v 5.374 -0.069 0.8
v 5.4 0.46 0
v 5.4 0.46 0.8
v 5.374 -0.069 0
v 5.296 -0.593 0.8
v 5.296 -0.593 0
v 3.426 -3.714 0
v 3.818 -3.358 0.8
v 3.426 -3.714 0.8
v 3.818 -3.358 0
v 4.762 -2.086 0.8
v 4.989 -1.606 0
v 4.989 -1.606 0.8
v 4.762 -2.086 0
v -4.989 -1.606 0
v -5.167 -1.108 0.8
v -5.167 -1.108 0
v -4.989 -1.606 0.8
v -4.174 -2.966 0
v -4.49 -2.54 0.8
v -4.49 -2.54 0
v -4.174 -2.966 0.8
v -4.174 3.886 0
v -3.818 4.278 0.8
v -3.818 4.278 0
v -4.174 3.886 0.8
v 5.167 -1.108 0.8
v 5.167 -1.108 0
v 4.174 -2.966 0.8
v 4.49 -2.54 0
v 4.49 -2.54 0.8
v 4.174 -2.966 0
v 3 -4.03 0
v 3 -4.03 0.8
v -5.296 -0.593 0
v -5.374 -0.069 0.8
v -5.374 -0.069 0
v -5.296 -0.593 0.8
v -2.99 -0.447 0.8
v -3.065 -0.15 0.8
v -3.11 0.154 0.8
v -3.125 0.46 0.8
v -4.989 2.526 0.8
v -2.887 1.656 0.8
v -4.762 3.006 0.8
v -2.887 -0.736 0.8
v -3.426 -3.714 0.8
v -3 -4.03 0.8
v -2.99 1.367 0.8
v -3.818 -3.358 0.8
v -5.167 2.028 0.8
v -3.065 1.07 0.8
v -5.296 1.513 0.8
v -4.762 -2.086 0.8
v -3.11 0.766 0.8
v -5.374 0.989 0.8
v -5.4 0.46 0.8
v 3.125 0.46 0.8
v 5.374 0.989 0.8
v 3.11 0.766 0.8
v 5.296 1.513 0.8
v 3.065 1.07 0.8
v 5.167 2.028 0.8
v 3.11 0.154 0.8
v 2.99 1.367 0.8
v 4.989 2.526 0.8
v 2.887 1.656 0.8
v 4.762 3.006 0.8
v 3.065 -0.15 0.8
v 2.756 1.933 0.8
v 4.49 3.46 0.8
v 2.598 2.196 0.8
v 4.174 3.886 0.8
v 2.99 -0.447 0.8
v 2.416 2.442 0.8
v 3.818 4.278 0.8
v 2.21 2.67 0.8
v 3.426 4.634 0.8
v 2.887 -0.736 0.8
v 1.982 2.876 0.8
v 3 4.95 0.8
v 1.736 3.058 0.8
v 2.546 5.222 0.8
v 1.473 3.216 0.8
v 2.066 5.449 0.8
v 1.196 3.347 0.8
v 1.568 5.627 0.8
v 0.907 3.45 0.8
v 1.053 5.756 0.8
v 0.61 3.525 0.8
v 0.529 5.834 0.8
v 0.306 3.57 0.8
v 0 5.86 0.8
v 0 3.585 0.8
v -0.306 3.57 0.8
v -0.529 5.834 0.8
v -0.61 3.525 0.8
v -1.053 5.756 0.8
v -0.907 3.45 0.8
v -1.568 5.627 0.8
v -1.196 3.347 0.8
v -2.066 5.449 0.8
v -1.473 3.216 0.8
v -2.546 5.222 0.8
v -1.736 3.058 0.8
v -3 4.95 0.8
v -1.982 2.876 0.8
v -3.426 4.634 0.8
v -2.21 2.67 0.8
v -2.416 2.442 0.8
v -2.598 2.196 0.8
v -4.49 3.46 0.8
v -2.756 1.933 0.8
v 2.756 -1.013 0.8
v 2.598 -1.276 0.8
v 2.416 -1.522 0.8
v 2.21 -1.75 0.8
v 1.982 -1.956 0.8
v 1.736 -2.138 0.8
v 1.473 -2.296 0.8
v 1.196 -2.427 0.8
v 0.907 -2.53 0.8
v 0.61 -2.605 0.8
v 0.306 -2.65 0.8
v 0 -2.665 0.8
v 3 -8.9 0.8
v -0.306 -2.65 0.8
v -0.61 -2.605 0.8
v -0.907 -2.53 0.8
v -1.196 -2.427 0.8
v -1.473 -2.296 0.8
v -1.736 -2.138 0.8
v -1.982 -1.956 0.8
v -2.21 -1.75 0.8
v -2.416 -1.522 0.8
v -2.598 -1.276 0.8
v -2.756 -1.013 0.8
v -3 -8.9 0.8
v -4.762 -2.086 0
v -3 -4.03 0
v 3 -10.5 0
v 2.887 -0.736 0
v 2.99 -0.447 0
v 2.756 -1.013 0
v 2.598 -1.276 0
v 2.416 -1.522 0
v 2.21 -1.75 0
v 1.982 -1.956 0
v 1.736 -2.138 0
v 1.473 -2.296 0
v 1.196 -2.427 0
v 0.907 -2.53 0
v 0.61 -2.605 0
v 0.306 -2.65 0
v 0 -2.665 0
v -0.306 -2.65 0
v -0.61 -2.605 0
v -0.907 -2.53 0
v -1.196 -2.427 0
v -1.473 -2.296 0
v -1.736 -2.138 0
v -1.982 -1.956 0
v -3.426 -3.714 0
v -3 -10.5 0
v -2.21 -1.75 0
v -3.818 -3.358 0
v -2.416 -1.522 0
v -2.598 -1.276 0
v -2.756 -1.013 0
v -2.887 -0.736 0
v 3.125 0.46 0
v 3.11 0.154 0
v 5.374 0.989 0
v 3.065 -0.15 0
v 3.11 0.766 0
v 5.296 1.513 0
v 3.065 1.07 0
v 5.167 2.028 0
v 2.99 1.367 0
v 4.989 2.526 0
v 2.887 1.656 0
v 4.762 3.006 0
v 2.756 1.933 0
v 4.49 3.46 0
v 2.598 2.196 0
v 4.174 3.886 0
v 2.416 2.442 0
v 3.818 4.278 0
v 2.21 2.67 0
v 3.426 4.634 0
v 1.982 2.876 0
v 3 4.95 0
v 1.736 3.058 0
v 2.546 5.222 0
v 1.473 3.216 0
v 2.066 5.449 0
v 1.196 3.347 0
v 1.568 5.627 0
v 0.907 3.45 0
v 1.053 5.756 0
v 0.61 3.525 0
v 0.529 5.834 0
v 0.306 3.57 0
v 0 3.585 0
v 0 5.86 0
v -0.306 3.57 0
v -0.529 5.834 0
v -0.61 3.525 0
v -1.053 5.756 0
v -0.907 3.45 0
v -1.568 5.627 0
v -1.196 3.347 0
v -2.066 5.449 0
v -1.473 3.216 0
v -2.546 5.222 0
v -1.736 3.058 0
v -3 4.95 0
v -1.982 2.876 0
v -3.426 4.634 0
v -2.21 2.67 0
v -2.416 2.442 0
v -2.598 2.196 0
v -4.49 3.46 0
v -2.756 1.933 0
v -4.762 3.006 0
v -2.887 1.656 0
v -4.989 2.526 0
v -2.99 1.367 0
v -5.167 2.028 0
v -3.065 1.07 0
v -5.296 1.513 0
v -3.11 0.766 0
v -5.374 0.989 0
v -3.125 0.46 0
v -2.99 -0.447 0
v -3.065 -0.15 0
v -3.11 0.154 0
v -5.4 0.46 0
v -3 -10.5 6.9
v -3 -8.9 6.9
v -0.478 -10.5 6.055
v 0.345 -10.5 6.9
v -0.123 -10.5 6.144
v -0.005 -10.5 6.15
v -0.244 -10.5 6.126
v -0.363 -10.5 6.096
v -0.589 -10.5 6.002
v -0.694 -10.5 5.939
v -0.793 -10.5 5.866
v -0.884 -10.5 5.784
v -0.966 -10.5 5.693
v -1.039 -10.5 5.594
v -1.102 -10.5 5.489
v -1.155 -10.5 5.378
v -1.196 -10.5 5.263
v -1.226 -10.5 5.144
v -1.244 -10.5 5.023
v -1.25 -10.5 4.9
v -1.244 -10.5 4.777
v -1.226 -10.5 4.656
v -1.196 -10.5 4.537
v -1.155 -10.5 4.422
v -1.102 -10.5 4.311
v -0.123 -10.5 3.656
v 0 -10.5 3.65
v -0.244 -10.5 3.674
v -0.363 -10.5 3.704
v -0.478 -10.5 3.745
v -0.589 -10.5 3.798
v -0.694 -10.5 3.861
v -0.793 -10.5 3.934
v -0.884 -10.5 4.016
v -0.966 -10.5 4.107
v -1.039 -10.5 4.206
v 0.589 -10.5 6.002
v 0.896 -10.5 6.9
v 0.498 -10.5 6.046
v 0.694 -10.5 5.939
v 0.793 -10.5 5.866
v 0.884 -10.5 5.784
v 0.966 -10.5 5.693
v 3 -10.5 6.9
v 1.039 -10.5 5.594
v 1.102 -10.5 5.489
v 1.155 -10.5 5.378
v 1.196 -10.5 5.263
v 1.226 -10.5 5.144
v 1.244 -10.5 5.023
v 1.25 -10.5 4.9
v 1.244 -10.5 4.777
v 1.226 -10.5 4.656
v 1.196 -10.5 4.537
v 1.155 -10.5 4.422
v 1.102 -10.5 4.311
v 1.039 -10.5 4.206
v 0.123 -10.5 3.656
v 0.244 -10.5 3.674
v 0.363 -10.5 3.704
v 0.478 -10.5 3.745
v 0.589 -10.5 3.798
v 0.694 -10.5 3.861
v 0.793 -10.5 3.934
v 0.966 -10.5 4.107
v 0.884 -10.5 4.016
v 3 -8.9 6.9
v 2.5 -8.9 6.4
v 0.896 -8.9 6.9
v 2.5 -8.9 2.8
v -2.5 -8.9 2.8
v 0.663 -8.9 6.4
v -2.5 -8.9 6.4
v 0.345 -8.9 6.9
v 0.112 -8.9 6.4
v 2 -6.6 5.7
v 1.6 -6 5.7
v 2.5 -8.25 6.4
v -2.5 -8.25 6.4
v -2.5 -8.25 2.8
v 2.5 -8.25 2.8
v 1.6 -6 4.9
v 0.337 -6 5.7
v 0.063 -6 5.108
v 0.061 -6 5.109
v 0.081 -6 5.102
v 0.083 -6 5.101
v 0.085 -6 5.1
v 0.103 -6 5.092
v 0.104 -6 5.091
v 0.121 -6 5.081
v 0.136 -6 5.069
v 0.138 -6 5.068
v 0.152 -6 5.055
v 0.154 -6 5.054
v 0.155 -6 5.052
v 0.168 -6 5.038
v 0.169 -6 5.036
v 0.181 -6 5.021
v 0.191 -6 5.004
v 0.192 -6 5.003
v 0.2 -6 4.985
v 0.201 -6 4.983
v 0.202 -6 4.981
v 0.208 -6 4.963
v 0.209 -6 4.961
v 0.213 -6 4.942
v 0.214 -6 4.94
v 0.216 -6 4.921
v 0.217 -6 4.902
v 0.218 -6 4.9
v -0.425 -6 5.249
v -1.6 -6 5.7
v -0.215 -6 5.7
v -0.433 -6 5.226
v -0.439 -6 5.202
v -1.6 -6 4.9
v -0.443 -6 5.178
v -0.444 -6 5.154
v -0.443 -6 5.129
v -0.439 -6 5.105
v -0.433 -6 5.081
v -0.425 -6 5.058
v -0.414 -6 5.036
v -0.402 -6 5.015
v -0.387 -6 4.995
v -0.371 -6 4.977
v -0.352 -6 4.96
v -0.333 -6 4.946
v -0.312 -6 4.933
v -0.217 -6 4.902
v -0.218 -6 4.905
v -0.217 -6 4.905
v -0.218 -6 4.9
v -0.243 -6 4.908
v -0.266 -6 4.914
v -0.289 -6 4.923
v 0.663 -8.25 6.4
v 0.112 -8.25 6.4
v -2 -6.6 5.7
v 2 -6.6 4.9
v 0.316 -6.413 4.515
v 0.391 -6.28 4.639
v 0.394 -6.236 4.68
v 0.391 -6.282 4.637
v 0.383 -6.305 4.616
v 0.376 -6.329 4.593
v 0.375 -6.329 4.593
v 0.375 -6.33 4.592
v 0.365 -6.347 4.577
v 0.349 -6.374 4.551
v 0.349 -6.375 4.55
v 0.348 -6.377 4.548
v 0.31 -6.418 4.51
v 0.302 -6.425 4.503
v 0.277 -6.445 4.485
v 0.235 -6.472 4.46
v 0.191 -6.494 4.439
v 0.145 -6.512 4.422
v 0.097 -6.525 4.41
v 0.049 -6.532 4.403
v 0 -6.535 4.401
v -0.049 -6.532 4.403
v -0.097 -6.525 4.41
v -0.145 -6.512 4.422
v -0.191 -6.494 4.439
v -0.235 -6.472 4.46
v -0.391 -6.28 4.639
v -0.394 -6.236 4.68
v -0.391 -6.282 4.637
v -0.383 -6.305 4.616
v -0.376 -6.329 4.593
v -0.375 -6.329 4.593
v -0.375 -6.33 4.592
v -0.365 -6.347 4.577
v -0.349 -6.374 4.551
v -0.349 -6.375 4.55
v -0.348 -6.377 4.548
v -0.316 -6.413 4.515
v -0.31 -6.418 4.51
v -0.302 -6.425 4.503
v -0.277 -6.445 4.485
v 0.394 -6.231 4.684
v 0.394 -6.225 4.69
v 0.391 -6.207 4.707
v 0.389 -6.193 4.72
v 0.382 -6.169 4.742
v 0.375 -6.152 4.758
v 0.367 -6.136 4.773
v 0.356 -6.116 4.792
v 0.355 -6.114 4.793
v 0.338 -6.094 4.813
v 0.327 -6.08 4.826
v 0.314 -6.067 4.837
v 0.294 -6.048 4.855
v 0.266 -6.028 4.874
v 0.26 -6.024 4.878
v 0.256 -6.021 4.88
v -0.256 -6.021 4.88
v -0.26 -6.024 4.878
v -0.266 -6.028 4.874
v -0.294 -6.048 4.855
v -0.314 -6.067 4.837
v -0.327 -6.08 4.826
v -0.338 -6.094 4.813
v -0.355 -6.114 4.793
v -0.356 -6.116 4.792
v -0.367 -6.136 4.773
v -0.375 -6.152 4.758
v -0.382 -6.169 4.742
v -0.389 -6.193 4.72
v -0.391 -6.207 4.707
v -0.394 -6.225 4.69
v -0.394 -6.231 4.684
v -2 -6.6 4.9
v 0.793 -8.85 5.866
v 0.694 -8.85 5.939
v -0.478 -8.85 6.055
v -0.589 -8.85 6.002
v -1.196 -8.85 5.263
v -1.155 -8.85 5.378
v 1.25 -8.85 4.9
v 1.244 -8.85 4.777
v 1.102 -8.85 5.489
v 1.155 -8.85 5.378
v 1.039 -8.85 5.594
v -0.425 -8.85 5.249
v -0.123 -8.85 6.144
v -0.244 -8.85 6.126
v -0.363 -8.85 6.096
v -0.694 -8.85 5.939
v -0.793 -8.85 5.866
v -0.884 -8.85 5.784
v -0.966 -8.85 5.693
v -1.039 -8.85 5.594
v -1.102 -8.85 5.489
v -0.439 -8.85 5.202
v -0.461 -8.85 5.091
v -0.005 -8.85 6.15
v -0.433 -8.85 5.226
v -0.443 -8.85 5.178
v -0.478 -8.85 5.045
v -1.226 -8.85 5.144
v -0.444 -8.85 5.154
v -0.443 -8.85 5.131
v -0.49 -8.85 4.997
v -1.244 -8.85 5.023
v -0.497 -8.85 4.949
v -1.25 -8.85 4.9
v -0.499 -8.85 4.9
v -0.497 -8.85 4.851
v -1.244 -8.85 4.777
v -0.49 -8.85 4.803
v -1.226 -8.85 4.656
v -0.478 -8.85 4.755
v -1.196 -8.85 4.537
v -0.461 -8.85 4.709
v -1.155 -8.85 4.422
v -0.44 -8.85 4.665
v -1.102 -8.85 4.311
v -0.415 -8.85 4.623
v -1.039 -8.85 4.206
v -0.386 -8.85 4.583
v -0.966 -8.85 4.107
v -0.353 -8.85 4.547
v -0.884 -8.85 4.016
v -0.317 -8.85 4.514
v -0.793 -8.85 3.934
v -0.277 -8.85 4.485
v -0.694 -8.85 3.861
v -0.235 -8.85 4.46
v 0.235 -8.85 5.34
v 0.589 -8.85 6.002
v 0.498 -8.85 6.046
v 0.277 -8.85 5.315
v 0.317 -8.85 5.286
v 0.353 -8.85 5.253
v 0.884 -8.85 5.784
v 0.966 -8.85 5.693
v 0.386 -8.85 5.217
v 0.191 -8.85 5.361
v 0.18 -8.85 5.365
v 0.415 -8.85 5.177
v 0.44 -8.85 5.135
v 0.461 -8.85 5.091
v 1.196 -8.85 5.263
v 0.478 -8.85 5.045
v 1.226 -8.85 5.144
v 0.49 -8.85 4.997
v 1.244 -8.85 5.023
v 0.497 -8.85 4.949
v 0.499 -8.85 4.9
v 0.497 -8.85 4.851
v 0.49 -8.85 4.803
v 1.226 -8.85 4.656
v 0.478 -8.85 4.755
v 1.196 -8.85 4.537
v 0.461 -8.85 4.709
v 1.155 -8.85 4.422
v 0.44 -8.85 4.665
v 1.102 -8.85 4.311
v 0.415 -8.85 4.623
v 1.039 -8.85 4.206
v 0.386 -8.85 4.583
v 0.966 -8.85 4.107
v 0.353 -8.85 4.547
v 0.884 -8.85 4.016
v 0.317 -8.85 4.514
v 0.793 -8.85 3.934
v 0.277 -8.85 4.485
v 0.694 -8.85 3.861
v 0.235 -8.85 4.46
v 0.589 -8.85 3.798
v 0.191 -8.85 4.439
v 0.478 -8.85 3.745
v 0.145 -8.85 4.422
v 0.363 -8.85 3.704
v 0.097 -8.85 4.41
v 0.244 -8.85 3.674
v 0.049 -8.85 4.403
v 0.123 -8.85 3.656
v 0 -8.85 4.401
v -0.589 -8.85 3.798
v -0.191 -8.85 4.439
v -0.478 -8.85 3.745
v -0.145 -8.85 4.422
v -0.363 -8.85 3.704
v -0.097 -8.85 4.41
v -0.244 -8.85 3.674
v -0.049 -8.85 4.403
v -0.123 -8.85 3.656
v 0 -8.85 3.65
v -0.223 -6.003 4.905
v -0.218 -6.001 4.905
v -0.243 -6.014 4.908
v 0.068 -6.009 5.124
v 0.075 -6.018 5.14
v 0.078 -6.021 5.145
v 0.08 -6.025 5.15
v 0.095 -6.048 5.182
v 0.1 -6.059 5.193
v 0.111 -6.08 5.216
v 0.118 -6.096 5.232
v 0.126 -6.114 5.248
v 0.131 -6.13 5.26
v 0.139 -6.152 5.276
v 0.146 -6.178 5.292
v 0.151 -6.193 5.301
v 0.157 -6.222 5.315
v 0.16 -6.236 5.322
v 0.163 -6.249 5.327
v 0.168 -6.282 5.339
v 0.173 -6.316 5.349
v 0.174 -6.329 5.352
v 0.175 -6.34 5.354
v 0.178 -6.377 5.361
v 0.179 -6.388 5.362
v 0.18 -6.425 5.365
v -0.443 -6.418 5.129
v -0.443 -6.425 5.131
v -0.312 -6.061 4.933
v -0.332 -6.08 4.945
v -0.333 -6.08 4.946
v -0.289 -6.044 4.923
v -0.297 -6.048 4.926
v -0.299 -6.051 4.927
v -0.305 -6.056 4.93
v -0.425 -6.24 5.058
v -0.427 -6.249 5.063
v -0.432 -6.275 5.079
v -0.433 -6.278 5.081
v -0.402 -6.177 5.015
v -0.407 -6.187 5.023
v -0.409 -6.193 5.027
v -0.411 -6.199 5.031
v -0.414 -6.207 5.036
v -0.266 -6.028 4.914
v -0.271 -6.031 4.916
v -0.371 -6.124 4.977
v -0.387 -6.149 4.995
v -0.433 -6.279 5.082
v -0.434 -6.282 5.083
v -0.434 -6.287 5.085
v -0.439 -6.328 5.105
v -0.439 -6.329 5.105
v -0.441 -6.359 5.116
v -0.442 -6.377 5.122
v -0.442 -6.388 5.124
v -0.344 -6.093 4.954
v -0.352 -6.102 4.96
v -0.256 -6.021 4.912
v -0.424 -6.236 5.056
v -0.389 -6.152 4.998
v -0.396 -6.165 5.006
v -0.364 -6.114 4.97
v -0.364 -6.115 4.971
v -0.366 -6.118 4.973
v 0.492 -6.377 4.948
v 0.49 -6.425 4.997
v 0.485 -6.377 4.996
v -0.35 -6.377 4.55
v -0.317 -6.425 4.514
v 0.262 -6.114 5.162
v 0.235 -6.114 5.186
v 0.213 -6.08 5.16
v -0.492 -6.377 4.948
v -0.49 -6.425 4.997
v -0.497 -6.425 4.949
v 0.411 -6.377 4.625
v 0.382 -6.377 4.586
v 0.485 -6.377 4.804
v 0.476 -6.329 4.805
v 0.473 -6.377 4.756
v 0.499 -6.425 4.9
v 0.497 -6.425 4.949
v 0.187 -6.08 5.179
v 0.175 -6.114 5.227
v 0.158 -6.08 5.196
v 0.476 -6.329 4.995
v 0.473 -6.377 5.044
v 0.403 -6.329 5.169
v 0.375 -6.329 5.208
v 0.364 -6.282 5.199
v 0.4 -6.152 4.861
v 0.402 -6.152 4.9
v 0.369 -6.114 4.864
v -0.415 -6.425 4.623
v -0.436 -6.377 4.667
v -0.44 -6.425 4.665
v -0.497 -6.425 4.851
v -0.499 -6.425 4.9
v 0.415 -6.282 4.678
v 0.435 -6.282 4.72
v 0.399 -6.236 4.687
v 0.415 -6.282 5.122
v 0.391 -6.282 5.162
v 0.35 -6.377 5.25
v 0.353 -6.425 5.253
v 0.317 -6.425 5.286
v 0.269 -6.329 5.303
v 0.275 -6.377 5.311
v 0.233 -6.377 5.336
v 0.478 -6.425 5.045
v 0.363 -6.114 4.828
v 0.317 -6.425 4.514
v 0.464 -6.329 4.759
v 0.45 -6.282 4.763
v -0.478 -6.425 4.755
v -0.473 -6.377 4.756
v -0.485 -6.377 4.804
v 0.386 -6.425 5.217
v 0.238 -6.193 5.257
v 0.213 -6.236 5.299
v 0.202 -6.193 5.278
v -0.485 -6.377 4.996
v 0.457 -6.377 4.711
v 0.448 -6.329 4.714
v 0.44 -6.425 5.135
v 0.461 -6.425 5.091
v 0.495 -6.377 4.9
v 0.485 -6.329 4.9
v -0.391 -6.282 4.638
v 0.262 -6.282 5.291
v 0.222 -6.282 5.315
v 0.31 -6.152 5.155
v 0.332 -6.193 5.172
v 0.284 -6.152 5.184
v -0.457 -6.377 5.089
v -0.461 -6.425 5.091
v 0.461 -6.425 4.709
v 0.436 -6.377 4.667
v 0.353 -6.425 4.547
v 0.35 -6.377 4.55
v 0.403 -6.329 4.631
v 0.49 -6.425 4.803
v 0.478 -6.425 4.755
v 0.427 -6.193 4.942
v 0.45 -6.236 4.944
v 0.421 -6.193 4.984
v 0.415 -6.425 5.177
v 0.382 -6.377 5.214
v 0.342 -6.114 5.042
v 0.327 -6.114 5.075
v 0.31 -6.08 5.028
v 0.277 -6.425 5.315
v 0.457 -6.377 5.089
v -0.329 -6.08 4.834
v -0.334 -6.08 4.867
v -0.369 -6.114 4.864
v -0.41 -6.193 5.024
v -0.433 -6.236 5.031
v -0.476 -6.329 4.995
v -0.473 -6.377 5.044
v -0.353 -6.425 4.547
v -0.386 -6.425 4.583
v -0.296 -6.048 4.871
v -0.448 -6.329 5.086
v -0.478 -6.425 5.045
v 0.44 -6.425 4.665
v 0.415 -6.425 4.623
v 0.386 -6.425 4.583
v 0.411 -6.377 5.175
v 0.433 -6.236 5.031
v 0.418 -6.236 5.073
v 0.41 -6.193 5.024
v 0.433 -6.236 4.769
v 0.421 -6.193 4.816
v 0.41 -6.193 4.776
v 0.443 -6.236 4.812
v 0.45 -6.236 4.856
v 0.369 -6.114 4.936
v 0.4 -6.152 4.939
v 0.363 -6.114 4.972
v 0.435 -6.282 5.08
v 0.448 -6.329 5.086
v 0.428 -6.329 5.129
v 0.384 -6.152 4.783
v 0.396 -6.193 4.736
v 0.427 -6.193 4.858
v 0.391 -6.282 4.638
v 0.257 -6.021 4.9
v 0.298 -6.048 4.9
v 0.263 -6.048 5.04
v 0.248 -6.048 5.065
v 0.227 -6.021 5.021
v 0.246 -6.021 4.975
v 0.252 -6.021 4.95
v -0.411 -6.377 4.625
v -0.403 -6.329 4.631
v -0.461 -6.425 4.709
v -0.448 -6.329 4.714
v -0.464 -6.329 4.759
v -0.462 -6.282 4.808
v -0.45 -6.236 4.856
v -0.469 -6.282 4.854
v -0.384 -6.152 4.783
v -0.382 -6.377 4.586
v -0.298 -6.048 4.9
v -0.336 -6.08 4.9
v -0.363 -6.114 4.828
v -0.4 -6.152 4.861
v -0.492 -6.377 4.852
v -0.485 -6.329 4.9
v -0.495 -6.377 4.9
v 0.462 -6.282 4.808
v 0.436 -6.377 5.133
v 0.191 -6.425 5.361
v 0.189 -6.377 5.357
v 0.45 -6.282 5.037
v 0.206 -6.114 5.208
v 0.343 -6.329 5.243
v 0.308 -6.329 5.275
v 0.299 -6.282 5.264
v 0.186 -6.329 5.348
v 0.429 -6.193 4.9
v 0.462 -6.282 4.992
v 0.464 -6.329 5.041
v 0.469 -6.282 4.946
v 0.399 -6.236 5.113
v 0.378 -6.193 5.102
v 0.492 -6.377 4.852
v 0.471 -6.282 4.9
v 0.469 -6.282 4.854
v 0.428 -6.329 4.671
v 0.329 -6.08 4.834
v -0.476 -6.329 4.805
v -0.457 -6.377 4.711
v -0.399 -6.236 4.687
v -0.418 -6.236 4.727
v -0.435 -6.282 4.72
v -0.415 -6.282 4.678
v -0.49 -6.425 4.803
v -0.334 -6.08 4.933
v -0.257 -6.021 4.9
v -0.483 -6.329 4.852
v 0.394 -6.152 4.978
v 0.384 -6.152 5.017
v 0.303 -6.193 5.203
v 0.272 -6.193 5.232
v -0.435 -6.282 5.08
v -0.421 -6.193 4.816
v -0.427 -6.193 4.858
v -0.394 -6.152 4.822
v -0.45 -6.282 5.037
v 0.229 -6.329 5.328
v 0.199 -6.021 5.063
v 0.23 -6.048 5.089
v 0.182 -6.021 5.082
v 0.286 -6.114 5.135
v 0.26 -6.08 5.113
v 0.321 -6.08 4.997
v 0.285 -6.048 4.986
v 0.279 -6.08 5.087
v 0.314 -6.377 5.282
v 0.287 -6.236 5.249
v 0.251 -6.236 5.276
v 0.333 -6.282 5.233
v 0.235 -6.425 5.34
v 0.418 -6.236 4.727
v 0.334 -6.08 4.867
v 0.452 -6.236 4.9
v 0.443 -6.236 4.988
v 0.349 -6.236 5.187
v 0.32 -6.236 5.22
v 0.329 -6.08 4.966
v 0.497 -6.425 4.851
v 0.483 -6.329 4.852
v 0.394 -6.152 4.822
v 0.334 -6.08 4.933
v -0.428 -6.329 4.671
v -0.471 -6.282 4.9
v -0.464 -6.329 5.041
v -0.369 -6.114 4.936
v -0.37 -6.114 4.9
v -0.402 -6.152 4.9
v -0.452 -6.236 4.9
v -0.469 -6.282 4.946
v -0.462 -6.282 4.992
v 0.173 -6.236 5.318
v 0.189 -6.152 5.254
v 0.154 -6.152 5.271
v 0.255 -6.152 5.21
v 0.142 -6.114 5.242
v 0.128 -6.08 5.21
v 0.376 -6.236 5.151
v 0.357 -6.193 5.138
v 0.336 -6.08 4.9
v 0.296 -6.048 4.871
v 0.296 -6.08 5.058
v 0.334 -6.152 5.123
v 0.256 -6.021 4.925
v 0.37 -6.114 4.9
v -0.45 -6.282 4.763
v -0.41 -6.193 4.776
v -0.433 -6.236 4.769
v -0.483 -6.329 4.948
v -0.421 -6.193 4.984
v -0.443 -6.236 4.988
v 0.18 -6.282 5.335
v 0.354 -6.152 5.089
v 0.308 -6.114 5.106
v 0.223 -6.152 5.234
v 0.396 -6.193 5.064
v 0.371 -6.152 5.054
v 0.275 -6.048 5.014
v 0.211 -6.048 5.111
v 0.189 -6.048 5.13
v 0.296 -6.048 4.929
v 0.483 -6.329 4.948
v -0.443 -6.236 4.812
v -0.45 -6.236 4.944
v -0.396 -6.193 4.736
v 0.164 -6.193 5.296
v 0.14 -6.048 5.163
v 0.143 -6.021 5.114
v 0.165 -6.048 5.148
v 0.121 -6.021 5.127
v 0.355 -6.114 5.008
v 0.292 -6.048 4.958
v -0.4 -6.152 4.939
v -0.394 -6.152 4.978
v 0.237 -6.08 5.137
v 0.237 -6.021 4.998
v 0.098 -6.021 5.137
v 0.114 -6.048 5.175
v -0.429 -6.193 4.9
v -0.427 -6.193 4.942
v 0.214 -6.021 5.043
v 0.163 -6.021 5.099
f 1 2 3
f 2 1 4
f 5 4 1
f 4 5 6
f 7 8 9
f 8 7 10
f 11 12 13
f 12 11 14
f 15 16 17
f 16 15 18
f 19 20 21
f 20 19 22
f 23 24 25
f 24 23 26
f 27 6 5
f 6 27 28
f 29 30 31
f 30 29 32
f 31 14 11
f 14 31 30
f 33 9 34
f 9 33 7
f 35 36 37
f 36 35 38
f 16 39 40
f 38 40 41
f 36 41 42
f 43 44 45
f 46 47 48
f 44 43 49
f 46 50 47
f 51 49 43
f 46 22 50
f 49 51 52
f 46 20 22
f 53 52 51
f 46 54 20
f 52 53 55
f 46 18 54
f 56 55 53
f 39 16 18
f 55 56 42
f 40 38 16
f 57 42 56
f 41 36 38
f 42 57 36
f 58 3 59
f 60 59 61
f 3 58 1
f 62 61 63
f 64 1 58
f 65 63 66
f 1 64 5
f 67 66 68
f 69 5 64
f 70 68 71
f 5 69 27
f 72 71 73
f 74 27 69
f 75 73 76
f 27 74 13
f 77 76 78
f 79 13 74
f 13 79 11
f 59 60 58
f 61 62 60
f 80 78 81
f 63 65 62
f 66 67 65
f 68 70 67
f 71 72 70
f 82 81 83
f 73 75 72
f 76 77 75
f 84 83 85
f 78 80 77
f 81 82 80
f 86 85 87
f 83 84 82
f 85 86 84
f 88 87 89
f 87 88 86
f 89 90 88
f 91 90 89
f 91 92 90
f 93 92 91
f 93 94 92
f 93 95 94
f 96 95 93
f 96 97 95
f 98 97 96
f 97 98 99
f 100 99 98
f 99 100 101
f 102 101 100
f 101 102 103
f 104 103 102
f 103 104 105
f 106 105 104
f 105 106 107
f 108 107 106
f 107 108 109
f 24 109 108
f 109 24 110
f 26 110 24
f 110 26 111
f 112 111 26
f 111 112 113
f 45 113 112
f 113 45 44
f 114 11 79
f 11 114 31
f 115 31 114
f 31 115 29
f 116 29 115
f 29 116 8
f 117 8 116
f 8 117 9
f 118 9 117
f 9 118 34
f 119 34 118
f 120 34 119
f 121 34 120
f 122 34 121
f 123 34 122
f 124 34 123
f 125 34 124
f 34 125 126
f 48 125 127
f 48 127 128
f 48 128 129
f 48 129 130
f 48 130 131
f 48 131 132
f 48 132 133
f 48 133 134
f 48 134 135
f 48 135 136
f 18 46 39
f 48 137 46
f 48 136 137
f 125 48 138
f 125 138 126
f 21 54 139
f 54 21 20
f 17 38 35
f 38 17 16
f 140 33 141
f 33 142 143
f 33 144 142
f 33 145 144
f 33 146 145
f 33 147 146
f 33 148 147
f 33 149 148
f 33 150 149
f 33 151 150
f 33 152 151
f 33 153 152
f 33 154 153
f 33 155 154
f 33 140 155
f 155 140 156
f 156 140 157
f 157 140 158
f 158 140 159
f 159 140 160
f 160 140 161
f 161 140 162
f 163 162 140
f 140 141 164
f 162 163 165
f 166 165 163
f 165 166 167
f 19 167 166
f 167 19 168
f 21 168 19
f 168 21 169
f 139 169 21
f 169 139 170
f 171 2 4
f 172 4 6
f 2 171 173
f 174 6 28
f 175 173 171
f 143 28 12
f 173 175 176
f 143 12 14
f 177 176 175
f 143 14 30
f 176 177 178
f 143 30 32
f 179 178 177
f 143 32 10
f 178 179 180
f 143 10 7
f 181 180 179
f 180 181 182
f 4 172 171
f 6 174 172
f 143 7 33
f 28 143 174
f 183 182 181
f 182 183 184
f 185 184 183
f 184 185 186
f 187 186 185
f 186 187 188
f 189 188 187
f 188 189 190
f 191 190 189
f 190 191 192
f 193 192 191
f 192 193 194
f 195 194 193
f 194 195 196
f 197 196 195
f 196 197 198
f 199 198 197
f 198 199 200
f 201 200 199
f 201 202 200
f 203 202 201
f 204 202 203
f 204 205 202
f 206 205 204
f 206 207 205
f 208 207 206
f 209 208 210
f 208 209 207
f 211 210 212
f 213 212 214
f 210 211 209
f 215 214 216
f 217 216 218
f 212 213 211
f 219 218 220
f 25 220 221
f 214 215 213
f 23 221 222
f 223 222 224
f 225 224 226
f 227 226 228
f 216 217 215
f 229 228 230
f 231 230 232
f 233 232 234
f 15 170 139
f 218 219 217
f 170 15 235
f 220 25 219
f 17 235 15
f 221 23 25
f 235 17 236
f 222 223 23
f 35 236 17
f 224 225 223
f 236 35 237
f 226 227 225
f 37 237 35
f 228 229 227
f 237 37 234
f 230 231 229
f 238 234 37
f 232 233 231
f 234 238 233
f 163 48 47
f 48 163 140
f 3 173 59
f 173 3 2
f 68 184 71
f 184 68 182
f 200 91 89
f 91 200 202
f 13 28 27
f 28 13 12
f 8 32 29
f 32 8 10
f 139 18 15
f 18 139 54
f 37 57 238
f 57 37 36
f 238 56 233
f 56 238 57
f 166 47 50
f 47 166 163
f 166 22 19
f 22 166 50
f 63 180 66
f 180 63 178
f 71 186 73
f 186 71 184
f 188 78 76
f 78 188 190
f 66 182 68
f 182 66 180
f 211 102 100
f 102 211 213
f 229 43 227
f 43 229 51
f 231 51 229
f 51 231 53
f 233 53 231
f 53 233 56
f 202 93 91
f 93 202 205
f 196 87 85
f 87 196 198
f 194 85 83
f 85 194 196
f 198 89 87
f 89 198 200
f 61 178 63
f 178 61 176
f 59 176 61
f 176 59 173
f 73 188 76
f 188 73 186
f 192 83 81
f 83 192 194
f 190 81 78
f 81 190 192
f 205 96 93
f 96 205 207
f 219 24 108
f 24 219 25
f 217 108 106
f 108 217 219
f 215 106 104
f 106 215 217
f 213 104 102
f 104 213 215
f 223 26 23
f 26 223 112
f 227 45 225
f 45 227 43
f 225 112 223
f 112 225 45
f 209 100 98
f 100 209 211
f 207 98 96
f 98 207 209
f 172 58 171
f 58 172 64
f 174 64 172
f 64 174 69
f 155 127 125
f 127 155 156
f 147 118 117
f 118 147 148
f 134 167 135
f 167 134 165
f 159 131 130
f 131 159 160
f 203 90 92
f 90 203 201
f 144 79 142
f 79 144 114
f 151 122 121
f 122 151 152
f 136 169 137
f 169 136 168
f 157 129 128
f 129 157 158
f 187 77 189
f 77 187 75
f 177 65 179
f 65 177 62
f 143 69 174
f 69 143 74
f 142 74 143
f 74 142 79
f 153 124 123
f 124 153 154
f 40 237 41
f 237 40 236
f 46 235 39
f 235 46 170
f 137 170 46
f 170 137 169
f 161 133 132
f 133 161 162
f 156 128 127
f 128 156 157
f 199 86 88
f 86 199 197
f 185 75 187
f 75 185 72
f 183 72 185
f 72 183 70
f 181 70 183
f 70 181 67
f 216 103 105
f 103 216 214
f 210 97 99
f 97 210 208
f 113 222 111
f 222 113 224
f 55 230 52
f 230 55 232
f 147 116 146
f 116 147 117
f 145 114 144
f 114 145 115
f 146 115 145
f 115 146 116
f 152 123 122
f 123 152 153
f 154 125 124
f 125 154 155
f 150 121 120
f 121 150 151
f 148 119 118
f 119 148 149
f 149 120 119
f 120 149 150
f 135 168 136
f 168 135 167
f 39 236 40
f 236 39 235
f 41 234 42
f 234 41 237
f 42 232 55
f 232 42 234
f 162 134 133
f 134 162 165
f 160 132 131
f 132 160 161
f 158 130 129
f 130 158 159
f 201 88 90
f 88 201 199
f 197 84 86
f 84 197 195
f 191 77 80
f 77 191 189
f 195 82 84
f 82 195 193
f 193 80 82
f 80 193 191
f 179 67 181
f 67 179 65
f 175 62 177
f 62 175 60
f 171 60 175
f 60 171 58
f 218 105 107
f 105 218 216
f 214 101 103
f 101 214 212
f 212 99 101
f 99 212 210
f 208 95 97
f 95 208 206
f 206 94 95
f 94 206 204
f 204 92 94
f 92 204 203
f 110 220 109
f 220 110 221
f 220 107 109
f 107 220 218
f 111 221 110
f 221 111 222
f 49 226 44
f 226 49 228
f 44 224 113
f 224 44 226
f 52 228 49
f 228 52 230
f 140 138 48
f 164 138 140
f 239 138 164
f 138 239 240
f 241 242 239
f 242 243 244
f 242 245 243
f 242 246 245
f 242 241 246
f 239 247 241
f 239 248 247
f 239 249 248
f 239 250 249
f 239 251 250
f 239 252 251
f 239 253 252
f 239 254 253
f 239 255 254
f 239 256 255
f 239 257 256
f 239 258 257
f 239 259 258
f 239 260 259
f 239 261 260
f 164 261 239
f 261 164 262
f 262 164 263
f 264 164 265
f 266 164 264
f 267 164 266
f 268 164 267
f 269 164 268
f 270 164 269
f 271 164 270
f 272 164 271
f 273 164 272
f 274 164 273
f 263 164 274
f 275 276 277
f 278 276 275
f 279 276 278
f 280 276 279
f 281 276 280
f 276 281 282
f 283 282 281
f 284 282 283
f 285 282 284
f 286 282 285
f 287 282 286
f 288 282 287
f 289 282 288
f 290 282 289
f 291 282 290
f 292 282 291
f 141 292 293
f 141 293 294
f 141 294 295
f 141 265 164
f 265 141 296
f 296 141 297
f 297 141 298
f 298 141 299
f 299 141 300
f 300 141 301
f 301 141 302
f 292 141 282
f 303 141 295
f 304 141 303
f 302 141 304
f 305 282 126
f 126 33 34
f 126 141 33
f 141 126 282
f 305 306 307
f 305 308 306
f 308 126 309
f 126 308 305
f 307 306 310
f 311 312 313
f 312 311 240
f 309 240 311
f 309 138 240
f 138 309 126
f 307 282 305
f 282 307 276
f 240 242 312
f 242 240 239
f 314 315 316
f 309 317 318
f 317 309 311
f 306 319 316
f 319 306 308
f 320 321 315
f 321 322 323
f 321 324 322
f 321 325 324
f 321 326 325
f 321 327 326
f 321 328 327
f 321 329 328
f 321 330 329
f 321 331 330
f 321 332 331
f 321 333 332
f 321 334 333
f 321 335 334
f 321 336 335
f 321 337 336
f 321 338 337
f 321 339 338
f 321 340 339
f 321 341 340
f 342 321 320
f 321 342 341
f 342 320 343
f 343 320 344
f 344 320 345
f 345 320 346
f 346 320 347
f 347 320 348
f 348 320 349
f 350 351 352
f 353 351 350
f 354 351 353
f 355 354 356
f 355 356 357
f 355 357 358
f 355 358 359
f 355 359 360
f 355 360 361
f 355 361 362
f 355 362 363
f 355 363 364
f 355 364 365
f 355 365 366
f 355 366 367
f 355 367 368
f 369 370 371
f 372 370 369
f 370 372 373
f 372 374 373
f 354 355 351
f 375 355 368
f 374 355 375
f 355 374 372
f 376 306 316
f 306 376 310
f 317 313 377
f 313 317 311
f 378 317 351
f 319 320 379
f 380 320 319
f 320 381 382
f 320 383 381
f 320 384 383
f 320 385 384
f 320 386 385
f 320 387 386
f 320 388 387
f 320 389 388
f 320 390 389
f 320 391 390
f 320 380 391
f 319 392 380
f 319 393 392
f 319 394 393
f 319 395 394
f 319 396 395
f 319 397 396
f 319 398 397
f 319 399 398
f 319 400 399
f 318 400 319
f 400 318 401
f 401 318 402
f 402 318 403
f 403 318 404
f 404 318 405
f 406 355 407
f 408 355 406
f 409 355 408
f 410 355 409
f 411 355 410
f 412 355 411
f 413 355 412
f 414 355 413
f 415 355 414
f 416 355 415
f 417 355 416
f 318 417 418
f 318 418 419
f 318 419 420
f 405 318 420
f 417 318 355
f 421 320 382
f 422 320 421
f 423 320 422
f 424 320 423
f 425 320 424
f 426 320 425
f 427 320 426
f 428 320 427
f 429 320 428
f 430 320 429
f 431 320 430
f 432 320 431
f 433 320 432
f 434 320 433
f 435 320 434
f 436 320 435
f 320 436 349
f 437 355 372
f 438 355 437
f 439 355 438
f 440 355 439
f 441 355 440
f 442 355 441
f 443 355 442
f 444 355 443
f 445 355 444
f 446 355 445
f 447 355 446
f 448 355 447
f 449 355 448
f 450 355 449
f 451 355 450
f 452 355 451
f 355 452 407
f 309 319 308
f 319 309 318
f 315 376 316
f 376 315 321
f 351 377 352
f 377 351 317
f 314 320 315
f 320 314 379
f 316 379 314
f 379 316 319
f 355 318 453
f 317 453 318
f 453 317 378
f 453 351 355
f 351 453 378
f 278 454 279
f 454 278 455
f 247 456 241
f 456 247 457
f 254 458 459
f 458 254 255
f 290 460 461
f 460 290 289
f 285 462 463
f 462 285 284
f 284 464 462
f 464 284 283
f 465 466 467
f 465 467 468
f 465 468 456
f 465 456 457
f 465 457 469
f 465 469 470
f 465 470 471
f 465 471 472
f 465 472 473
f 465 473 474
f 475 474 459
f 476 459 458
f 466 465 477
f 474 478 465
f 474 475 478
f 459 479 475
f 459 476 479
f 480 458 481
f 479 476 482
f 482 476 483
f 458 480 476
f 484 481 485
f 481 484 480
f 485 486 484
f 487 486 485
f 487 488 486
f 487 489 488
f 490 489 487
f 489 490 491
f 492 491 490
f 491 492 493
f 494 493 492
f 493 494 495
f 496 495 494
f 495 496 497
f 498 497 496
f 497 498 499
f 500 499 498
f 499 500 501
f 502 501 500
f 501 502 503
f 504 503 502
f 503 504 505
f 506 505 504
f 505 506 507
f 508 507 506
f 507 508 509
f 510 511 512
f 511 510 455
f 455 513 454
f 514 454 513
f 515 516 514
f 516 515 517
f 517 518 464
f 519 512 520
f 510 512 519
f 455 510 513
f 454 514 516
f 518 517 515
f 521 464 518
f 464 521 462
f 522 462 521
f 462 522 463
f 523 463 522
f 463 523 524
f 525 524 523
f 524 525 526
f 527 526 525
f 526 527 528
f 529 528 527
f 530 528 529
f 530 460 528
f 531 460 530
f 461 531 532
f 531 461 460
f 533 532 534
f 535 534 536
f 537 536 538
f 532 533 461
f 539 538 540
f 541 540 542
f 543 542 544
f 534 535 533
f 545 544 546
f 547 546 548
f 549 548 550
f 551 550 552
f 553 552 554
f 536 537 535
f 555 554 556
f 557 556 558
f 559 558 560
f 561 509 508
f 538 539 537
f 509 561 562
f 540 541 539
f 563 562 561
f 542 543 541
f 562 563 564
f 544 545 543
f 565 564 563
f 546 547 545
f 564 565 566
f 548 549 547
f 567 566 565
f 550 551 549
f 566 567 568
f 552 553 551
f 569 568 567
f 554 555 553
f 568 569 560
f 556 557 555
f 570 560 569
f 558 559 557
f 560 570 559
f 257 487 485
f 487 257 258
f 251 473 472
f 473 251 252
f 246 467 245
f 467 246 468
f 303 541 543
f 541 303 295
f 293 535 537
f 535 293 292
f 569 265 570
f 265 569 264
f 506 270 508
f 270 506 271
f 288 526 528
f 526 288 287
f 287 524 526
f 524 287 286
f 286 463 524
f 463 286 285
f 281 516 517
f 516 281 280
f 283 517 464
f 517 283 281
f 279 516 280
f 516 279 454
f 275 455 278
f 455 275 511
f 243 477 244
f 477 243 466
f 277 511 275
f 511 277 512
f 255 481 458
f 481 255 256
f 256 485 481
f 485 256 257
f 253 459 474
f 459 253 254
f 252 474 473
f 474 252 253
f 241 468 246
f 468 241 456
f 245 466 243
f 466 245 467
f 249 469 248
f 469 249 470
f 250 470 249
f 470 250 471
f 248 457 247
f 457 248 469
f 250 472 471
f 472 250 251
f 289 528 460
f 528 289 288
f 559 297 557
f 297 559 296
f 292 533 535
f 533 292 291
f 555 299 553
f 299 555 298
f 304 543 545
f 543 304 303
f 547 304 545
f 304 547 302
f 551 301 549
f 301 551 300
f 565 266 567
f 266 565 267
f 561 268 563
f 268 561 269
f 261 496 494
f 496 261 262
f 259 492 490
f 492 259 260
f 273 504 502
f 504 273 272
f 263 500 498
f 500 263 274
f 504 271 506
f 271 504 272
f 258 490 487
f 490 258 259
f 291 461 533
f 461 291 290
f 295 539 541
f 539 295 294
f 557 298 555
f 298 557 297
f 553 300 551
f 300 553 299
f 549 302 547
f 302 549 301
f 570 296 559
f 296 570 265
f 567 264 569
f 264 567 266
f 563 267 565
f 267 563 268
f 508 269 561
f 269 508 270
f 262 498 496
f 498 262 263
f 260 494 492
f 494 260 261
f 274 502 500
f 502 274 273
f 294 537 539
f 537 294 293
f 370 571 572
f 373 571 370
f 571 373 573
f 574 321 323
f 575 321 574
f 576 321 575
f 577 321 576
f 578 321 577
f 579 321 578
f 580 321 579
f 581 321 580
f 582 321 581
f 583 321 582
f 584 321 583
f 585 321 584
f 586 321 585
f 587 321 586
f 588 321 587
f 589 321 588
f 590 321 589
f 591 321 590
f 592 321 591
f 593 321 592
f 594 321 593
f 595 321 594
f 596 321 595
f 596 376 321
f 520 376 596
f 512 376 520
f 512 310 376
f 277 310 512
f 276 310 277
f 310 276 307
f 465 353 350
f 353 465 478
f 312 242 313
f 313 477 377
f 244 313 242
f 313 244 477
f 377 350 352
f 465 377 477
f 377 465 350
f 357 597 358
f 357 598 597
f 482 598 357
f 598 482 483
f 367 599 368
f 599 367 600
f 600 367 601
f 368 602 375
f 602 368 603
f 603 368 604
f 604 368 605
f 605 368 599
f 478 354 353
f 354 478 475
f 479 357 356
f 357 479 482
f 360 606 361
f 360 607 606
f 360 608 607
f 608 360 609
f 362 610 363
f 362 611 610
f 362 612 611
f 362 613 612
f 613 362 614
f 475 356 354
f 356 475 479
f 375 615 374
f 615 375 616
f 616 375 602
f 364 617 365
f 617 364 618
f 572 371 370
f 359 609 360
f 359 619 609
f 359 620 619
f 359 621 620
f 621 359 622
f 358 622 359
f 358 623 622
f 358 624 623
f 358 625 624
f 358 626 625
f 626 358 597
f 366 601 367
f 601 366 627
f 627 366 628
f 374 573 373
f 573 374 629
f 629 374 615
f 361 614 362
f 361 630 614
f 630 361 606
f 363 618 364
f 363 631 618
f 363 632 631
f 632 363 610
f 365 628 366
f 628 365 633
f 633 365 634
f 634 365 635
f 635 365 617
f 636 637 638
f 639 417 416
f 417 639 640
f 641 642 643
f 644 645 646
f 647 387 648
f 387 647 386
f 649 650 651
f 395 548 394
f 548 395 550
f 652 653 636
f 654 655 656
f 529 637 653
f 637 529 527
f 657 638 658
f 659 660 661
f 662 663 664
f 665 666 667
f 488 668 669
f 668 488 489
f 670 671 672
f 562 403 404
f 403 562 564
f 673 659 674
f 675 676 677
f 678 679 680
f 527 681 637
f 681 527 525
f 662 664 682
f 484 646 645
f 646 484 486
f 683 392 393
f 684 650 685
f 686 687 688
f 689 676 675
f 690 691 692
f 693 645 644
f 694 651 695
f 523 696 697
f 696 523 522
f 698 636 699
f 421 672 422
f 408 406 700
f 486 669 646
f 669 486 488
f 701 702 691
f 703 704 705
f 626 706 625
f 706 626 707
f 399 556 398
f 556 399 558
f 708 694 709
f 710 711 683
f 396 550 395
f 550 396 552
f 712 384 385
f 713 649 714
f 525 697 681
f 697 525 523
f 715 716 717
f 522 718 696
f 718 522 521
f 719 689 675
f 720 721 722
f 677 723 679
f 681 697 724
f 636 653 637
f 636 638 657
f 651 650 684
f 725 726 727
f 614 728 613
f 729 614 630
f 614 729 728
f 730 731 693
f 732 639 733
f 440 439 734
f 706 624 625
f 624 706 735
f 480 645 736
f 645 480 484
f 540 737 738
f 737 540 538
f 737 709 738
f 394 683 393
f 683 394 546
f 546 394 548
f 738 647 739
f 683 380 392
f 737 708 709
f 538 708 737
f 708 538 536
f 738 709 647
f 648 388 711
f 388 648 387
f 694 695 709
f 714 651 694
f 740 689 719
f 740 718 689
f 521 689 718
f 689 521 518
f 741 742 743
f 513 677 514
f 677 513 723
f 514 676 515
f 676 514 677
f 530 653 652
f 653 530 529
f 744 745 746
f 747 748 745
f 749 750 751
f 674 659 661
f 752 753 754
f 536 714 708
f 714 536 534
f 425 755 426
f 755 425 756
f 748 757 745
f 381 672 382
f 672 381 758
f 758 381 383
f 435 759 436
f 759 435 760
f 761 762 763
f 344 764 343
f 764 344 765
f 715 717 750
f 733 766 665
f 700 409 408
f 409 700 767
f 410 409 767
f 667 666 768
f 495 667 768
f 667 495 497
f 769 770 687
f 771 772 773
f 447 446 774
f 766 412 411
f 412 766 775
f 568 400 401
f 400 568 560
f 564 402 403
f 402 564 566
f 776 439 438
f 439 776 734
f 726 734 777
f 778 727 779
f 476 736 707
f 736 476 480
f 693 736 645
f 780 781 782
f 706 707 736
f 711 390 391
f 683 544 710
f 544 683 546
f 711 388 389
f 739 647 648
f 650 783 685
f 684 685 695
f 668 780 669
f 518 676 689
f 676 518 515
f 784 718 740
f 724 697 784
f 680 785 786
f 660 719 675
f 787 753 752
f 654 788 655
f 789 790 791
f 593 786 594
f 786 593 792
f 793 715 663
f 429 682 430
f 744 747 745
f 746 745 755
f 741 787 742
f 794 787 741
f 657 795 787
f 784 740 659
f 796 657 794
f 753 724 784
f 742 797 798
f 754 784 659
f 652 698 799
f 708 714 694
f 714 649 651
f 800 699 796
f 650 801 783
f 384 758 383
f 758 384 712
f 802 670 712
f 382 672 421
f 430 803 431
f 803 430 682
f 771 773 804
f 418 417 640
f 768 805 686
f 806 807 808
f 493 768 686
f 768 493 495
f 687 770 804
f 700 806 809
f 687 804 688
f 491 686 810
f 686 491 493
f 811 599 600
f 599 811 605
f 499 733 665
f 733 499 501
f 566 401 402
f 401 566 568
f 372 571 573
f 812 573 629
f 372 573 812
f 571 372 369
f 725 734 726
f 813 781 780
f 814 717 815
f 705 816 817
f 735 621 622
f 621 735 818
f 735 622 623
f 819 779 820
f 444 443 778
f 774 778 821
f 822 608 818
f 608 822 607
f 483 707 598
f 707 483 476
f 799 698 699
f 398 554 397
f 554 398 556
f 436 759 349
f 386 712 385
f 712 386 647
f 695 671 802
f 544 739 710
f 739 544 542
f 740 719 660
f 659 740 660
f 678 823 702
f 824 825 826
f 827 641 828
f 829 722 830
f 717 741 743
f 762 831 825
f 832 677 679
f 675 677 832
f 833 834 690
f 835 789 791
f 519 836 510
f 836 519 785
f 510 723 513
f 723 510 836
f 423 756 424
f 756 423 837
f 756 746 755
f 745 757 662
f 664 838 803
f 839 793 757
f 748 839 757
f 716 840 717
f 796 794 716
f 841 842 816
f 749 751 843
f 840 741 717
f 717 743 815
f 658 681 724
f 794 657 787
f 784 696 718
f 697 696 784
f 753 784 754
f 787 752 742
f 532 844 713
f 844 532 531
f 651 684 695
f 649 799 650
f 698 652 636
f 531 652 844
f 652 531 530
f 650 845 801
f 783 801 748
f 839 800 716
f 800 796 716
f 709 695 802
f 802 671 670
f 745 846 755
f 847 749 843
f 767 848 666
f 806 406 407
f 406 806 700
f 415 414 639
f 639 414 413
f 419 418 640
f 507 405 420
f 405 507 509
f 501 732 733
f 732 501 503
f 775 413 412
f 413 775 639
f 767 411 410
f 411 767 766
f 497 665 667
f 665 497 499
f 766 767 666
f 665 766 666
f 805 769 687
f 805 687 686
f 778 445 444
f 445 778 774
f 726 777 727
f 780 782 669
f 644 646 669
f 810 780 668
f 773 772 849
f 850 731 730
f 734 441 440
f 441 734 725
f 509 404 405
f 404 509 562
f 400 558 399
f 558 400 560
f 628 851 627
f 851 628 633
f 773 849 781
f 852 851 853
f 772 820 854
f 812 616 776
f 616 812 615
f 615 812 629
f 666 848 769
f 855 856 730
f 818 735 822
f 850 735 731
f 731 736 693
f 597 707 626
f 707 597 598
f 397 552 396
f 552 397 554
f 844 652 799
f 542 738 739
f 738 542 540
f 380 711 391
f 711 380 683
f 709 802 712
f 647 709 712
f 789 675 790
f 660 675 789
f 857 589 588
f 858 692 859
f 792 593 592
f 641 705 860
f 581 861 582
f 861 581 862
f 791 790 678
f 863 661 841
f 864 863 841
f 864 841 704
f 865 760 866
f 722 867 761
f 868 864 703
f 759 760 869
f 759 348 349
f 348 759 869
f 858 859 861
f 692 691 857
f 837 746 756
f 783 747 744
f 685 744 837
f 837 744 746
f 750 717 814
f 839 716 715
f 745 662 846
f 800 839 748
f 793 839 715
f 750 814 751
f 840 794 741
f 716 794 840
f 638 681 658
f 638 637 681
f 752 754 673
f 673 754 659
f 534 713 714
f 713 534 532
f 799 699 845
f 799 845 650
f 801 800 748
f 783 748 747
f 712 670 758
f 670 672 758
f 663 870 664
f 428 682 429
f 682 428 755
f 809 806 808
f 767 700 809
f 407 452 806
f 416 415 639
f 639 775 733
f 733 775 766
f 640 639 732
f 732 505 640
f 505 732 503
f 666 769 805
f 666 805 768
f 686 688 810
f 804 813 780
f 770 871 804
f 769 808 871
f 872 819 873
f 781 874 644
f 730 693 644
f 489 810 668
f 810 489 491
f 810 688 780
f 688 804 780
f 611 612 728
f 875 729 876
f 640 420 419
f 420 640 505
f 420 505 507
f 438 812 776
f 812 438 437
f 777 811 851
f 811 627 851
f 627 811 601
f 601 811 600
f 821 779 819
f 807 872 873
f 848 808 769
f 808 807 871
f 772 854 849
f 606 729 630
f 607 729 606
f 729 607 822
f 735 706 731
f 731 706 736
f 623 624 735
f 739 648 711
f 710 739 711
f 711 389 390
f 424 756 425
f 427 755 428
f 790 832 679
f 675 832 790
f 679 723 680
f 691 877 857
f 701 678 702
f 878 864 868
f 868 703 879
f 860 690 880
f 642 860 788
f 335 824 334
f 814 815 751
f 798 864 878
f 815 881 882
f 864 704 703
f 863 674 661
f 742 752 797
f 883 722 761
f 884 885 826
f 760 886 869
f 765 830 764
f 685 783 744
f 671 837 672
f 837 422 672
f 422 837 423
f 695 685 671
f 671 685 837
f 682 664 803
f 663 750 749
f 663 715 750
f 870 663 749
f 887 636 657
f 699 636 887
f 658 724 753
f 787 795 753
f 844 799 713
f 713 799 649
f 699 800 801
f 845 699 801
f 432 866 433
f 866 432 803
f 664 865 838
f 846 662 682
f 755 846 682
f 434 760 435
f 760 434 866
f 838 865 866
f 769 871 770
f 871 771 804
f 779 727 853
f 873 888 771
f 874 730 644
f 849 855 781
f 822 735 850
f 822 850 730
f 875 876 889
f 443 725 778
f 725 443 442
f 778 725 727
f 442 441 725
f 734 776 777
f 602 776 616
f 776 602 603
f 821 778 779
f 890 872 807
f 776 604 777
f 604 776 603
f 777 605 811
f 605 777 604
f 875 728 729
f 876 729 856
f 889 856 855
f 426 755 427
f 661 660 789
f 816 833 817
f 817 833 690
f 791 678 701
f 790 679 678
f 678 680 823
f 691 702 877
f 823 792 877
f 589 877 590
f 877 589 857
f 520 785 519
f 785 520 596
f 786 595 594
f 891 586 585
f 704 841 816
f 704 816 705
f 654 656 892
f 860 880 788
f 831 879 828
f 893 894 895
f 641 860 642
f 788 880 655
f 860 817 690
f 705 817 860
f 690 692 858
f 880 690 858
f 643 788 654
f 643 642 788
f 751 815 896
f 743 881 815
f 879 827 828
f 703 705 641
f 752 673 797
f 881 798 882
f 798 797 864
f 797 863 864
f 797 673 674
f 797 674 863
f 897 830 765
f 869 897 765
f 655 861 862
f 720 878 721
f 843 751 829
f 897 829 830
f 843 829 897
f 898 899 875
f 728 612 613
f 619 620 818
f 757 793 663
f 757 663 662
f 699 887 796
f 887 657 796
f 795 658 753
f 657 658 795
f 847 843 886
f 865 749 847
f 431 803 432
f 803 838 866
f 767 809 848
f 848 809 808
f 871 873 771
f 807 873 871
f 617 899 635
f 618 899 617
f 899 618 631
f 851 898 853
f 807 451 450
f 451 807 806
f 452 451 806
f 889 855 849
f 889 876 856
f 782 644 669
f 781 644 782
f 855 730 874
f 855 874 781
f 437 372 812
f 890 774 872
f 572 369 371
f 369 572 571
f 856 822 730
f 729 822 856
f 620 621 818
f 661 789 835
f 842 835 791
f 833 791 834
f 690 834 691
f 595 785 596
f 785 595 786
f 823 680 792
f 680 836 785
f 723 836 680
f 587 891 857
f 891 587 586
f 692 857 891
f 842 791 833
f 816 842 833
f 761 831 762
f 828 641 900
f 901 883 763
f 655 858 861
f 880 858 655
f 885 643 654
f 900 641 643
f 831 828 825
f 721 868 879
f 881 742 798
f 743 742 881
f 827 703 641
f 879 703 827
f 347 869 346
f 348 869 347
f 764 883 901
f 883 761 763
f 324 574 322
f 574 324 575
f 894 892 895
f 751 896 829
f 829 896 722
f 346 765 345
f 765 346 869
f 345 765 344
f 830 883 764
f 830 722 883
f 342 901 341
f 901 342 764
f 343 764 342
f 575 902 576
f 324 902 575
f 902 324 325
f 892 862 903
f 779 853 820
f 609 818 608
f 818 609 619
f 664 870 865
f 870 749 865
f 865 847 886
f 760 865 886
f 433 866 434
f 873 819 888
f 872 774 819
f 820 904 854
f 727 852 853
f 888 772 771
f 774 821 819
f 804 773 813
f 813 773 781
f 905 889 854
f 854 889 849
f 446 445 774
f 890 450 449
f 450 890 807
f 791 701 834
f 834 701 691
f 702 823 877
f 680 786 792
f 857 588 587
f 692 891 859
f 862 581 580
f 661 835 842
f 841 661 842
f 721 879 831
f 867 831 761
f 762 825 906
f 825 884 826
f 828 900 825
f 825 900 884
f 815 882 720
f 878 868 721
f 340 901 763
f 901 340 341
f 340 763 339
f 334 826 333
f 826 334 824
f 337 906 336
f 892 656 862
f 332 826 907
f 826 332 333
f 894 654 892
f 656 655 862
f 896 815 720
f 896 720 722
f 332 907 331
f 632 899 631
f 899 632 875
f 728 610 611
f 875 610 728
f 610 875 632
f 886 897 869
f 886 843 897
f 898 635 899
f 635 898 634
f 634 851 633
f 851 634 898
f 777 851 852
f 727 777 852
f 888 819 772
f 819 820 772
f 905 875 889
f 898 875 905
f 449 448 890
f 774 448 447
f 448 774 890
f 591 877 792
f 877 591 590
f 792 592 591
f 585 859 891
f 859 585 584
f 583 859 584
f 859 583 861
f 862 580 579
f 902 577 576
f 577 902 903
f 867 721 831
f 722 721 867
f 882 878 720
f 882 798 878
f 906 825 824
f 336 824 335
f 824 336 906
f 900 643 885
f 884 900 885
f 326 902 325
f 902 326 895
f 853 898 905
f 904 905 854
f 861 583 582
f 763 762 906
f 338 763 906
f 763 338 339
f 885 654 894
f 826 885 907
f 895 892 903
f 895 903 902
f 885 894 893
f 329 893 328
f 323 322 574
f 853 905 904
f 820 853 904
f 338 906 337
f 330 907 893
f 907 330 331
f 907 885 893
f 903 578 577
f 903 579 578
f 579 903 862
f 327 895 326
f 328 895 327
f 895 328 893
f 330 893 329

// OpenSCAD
// DOUBLE TAKE FRAMES — STATIONARY-COLLAR STRING HOOP
// DTF_RELEASE: 4.0.0
// Status: CANONICAL
//
// Replaces the long pressure bar with one-purpose geometry:
// - a tight collar around the clock movement's immobile 6.8 mm outer sleeve;
// - a short backboard rooted in that collar;
// - one projecting, side-loadable string hoop at the established boss datum.
// The rotating hour and minute capstans remain completely separate.
// Clock-body retention is intentionally omitted; mounting putty remains the
// simpler optional remedy if a particular movement fits loosely.
// v3.2.2 restores the collar/backboard base to the exact 0.80 mm thickness of
// v3.1.3's thin central stationary floor. The former 3.00 mm value incorrectly
// inherited the old pressure bar's full thickness and made the base excessive.
// v3.2.1 restores the complete v3.1.3 functional boss interface verbatim:
// collar fit, boss envelope, round seat, angled side-loading slit, full beak,
// and internal beak channel. Only the long pressure bar remains removed.

$fn = 64;
eps = 0.05;

// 0 = print layout, collar rear face on the bed
// 1 = installed-coordinate preview
render_mode = 0;

// Exact established stationary-sleeve fit from v3.1.3.
stationary_column_spec_d = 6.80;
stationary_collar_bore_d = 6.25;
stationary_collar_outer_d = 10.80;
stationary_collar_depth_y = 0.80;
stationary_axis_z = -0.46;

// Exact v3.1.3 boss and side-load interface.
string_boss_w_x = 6.00;
string_boss_d_y = 4.00;
string_boss_h_z = 1.60;
string_hole_d = 2.50;
string_boss_xc = 0;
string_boss_y0 = 1.30;
string_boss_z0 = 8.90;
string_hole_xc = string_boss_xc;
string_hole_yc = string_boss_y0+string_boss_d_y/2;
beak_rigid_raise_y = 1.20;

hoop_center_x = string_hole_xc;
hoop_center_y = string_hole_yc+beak_rigid_raise_y;
hoop_plate_z0 = string_boss_z0;
hoop_plate_h_z = string_boss_h_z;
hoop_hole_d = string_hole_d;
hoop_plate_w_x = string_boss_w_x;
hoop_front_y = string_boss_y0+beak_rigid_raise_y+string_boss_d_y;
capstan_flange_d = 16.00;
capstan_flange_clearance_z =
    hoop_plate_z0-(stationary_axis_z+capstan_flange_d/2);

side_loading_slot_w_y = 0.50;
side_loading_slot_angle_deg = 25;
side_loading_slot_hole_overlap = 0.40;
side_loading_slot_shift_x = 0.35;

// Exact complete beak from v3.1.3.
beak_root_xc = string_hole_xc;
beak_tip_xc = string_hole_xc;
beak_wall_y = 1.20;
beak_root_front_y = string_hole_yc+string_hole_d/2+0.25;
beak_axial_center_shift_y = 0.50;
beak_tip_d_y = 0.80;
beak_tip_front_y = 3.60+beak_axial_center_shift_y;
beak_tip_back_y = beak_tip_front_y-beak_tip_d_y;
beak_tip_yc = (beak_tip_back_y+beak_tip_front_y)/2;
beak_root_yc = (beak_wall_y+beak_root_front_y)/2;
beak_root_d_y = beak_root_front_y-beak_wall_y;
beak_root_z = string_boss_z0+0.10;
beak_root_w_x = 5.00;
beak_root_h_z = 1.50;
beak_tip_shoulder_w_x = 4.00;
beak_tip_apex_w_x = 0.8*beak_tip_shoulder_w_x;
beak_tip_taper_h_z = 0.60;
clock_spindle_top_cassette_y = 8.00;
beak_tip_center_cassette_y = clock_spindle_top_cassette_y-1.00;
guide_origin_cassette_y = 1.00;
beak_tip_z = beak_tip_center_cassette_y-guide_origin_cassette_y;
beak_outlet_local_z = beak_tip_z+0.45;
beak_channel_tip_yc = 2.80+beak_axial_center_shift_y;
beak_channel_root_d = 1.00;
beak_channel_tip_d = 1.00;

// The backboard stays behind the rotating flange plane. Its top arm occupies
// the old boss envelope but has no clock-retention function.
backboard_w_x = 6.00;
backboard_y0 = -stationary_collar_depth_y/2;
backboard_y1 = stationary_collar_depth_y/2;
backboard_z0 = stationary_axis_z + stationary_collar_outer_d/2 - 1.40;
backboard_z1 = hoop_plate_z0 + hoop_plate_h_z;

assert(stationary_collar_bore_d < stationary_column_spec_d,
       "stationary collar is not a friction fit");
assert((stationary_collar_outer_d-stationary_collar_bore_d)/2 >= 2.0-eps,
       "stationary collar wall is too thin");
assert(side_loading_slot_w_y < hoop_hole_d,
       "side-loading mouth must remain narrower than the string seat");
assert(capstan_flange_clearance_z >= 1.0,
       "outboard hoop arm intrudes into the rotating capstan sweep");

module cyl_y(d,y0,y1,xc=0,zc=0){
    translate([xc,y1,zc])
        rotate([90,0,0])
            cylinder(d=d,h=y1-y0);
}

module stationary_collar(){
    difference(){
        cyl_y(
            stationary_collar_outer_d,
            -stationary_collar_depth_y/2,
             stationary_collar_depth_y/2,
            0,
            stationary_axis_z
        );
        cyl_y(
            stationary_collar_bore_d,
            -stationary_collar_depth_y/2-eps,
             stationary_collar_depth_y/2+eps,
            0,
            stationary_axis_z
        );
    }
}

module collar_backboard(){
    // Rear radial spoke/backboard: it rises beside the stationary sleeve only
    // at the collar plane, then hands off to the outboard axial post above the
    // rotating flange envelope.
    translate([
        -backboard_w_x/2,
        backboard_y0,
        backboard_z0
    ])
        cube([
            backboard_w_x,
            backboard_y1-backboard_y0,
            backboard_z1-backboard_z0
        ]);
}

module projecting_hoop_arm_solid(){
    // Axial post/arm outside the capstan sweep. In a side view this is the
    // upright green leg and short basketball-hoop rim from the concept sketch.
    translate([
        -hoop_plate_w_x/2,
        backboard_y0,
        hoop_plate_z0
    ])
        cube([
            hoop_plate_w_x,
            hoop_front_y-backboard_y0,
            hoop_plate_h_z
        ]);
}

module side_loading_slot_cutter(){
    hole_yc = string_hole_yc+beak_rigid_raise_y;
    slot_centerline_offset = string_hole_d/2
        -side_loading_slot_w_y/2
        -side_loading_slot_hole_overlap;
    slot_inner_x = string_hole_xc
        -cos(side_loading_slot_angle_deg)*slot_centerline_offset
        +side_loading_slot_shift_x;
    slot_inner_y = hole_yc
        +sin(side_loading_slot_angle_deg)*slot_centerline_offset;
    slot_outer_y = string_boss_y0+beak_rigid_raise_y+string_boss_d_y+3;
    slot_outer_x = slot_inner_x
        +tan(side_loading_slot_angle_deg)*(slot_outer_y-slot_inner_y);
    slot_z0 = -20;
    slot_z1 = 20;

    hull(){
        translate([slot_inner_x,slot_inner_y,(slot_z0+slot_z1)/2])
            cylinder(
                h=slot_z1-slot_z0,
                d=side_loading_slot_w_y,
                center=true
            );
        translate([slot_outer_x,slot_outer_y,(slot_z0+slot_z1)/2])
            cylinder(
                h=slot_z1-slot_z0,
                d=side_loading_slot_w_y,
                center=true
            );
    }
}

module captive_beak_solid(){
    translate([0,beak_rigid_raise_y,0])
        hull(){
            translate([beak_root_xc,beak_root_yc,beak_root_z])
                cube([
                    beak_root_w_x,
                    beak_root_d_y,
                    beak_root_h_z
                ],center=true);

            translate([beak_tip_xc,beak_tip_yc,0])
                rotate([90,0,0])
                    linear_extrude(height=beak_tip_d_y,center=true)
                        polygon(points=[
                            [-beak_tip_apex_w_x/2,beak_tip_z],
                            [ beak_tip_apex_w_x/2,beak_tip_z],
                            [ beak_tip_shoulder_w_x/2,
                              beak_tip_z+beak_tip_taper_h_z],
                            [-beak_tip_shoulder_w_x/2,
                              beak_tip_z+beak_tip_taper_h_z]
                        ]);
        }
}

module captive_beak_channel(){
    hull(){
        translate([
            string_hole_xc,
            string_hole_yc+beak_rigid_raise_y,
            string_boss_z0+0.80
        ])
            sphere(d=beak_channel_root_d);
        translate([
            beak_tip_xc,
            beak_channel_tip_yc+beak_rigid_raise_y,
            beak_outlet_local_z
        ])
            sphere(d=beak_channel_tip_d);
    }
}

module hoop_string_void(){
    translate([
        hoop_center_x,
        hoop_center_y,
        hoop_plate_z0-eps
    ])
        cylinder(
            d=hoop_hole_d,
            h=hoop_plate_h_z+2*eps
        );

    side_loading_slot_cutter();
}

module stationary_string_hoop_installed(){
    difference(){
        union(){
            stationary_collar();
            collar_backboard();
            projecting_hoop_arm_solid();
            captive_beak_solid();
        }
        hoop_string_void();
        captive_beak_channel();
    }
}

module stationary_string_hoop_print_layout(){
    // Installed +Y becomes print +Z. The collar rear face, backboard, and rear
    // edge of the projecting arm all begin on the build plate as one body.
    translate([0,0,stationary_collar_depth_y/2])
        rotate([90,0,0])
            stationary_string_hoop_installed();
}

if(render_mode==1)
    stationary_string_hoop_installed();
else
    stationary_string_hoop_print_layout();
